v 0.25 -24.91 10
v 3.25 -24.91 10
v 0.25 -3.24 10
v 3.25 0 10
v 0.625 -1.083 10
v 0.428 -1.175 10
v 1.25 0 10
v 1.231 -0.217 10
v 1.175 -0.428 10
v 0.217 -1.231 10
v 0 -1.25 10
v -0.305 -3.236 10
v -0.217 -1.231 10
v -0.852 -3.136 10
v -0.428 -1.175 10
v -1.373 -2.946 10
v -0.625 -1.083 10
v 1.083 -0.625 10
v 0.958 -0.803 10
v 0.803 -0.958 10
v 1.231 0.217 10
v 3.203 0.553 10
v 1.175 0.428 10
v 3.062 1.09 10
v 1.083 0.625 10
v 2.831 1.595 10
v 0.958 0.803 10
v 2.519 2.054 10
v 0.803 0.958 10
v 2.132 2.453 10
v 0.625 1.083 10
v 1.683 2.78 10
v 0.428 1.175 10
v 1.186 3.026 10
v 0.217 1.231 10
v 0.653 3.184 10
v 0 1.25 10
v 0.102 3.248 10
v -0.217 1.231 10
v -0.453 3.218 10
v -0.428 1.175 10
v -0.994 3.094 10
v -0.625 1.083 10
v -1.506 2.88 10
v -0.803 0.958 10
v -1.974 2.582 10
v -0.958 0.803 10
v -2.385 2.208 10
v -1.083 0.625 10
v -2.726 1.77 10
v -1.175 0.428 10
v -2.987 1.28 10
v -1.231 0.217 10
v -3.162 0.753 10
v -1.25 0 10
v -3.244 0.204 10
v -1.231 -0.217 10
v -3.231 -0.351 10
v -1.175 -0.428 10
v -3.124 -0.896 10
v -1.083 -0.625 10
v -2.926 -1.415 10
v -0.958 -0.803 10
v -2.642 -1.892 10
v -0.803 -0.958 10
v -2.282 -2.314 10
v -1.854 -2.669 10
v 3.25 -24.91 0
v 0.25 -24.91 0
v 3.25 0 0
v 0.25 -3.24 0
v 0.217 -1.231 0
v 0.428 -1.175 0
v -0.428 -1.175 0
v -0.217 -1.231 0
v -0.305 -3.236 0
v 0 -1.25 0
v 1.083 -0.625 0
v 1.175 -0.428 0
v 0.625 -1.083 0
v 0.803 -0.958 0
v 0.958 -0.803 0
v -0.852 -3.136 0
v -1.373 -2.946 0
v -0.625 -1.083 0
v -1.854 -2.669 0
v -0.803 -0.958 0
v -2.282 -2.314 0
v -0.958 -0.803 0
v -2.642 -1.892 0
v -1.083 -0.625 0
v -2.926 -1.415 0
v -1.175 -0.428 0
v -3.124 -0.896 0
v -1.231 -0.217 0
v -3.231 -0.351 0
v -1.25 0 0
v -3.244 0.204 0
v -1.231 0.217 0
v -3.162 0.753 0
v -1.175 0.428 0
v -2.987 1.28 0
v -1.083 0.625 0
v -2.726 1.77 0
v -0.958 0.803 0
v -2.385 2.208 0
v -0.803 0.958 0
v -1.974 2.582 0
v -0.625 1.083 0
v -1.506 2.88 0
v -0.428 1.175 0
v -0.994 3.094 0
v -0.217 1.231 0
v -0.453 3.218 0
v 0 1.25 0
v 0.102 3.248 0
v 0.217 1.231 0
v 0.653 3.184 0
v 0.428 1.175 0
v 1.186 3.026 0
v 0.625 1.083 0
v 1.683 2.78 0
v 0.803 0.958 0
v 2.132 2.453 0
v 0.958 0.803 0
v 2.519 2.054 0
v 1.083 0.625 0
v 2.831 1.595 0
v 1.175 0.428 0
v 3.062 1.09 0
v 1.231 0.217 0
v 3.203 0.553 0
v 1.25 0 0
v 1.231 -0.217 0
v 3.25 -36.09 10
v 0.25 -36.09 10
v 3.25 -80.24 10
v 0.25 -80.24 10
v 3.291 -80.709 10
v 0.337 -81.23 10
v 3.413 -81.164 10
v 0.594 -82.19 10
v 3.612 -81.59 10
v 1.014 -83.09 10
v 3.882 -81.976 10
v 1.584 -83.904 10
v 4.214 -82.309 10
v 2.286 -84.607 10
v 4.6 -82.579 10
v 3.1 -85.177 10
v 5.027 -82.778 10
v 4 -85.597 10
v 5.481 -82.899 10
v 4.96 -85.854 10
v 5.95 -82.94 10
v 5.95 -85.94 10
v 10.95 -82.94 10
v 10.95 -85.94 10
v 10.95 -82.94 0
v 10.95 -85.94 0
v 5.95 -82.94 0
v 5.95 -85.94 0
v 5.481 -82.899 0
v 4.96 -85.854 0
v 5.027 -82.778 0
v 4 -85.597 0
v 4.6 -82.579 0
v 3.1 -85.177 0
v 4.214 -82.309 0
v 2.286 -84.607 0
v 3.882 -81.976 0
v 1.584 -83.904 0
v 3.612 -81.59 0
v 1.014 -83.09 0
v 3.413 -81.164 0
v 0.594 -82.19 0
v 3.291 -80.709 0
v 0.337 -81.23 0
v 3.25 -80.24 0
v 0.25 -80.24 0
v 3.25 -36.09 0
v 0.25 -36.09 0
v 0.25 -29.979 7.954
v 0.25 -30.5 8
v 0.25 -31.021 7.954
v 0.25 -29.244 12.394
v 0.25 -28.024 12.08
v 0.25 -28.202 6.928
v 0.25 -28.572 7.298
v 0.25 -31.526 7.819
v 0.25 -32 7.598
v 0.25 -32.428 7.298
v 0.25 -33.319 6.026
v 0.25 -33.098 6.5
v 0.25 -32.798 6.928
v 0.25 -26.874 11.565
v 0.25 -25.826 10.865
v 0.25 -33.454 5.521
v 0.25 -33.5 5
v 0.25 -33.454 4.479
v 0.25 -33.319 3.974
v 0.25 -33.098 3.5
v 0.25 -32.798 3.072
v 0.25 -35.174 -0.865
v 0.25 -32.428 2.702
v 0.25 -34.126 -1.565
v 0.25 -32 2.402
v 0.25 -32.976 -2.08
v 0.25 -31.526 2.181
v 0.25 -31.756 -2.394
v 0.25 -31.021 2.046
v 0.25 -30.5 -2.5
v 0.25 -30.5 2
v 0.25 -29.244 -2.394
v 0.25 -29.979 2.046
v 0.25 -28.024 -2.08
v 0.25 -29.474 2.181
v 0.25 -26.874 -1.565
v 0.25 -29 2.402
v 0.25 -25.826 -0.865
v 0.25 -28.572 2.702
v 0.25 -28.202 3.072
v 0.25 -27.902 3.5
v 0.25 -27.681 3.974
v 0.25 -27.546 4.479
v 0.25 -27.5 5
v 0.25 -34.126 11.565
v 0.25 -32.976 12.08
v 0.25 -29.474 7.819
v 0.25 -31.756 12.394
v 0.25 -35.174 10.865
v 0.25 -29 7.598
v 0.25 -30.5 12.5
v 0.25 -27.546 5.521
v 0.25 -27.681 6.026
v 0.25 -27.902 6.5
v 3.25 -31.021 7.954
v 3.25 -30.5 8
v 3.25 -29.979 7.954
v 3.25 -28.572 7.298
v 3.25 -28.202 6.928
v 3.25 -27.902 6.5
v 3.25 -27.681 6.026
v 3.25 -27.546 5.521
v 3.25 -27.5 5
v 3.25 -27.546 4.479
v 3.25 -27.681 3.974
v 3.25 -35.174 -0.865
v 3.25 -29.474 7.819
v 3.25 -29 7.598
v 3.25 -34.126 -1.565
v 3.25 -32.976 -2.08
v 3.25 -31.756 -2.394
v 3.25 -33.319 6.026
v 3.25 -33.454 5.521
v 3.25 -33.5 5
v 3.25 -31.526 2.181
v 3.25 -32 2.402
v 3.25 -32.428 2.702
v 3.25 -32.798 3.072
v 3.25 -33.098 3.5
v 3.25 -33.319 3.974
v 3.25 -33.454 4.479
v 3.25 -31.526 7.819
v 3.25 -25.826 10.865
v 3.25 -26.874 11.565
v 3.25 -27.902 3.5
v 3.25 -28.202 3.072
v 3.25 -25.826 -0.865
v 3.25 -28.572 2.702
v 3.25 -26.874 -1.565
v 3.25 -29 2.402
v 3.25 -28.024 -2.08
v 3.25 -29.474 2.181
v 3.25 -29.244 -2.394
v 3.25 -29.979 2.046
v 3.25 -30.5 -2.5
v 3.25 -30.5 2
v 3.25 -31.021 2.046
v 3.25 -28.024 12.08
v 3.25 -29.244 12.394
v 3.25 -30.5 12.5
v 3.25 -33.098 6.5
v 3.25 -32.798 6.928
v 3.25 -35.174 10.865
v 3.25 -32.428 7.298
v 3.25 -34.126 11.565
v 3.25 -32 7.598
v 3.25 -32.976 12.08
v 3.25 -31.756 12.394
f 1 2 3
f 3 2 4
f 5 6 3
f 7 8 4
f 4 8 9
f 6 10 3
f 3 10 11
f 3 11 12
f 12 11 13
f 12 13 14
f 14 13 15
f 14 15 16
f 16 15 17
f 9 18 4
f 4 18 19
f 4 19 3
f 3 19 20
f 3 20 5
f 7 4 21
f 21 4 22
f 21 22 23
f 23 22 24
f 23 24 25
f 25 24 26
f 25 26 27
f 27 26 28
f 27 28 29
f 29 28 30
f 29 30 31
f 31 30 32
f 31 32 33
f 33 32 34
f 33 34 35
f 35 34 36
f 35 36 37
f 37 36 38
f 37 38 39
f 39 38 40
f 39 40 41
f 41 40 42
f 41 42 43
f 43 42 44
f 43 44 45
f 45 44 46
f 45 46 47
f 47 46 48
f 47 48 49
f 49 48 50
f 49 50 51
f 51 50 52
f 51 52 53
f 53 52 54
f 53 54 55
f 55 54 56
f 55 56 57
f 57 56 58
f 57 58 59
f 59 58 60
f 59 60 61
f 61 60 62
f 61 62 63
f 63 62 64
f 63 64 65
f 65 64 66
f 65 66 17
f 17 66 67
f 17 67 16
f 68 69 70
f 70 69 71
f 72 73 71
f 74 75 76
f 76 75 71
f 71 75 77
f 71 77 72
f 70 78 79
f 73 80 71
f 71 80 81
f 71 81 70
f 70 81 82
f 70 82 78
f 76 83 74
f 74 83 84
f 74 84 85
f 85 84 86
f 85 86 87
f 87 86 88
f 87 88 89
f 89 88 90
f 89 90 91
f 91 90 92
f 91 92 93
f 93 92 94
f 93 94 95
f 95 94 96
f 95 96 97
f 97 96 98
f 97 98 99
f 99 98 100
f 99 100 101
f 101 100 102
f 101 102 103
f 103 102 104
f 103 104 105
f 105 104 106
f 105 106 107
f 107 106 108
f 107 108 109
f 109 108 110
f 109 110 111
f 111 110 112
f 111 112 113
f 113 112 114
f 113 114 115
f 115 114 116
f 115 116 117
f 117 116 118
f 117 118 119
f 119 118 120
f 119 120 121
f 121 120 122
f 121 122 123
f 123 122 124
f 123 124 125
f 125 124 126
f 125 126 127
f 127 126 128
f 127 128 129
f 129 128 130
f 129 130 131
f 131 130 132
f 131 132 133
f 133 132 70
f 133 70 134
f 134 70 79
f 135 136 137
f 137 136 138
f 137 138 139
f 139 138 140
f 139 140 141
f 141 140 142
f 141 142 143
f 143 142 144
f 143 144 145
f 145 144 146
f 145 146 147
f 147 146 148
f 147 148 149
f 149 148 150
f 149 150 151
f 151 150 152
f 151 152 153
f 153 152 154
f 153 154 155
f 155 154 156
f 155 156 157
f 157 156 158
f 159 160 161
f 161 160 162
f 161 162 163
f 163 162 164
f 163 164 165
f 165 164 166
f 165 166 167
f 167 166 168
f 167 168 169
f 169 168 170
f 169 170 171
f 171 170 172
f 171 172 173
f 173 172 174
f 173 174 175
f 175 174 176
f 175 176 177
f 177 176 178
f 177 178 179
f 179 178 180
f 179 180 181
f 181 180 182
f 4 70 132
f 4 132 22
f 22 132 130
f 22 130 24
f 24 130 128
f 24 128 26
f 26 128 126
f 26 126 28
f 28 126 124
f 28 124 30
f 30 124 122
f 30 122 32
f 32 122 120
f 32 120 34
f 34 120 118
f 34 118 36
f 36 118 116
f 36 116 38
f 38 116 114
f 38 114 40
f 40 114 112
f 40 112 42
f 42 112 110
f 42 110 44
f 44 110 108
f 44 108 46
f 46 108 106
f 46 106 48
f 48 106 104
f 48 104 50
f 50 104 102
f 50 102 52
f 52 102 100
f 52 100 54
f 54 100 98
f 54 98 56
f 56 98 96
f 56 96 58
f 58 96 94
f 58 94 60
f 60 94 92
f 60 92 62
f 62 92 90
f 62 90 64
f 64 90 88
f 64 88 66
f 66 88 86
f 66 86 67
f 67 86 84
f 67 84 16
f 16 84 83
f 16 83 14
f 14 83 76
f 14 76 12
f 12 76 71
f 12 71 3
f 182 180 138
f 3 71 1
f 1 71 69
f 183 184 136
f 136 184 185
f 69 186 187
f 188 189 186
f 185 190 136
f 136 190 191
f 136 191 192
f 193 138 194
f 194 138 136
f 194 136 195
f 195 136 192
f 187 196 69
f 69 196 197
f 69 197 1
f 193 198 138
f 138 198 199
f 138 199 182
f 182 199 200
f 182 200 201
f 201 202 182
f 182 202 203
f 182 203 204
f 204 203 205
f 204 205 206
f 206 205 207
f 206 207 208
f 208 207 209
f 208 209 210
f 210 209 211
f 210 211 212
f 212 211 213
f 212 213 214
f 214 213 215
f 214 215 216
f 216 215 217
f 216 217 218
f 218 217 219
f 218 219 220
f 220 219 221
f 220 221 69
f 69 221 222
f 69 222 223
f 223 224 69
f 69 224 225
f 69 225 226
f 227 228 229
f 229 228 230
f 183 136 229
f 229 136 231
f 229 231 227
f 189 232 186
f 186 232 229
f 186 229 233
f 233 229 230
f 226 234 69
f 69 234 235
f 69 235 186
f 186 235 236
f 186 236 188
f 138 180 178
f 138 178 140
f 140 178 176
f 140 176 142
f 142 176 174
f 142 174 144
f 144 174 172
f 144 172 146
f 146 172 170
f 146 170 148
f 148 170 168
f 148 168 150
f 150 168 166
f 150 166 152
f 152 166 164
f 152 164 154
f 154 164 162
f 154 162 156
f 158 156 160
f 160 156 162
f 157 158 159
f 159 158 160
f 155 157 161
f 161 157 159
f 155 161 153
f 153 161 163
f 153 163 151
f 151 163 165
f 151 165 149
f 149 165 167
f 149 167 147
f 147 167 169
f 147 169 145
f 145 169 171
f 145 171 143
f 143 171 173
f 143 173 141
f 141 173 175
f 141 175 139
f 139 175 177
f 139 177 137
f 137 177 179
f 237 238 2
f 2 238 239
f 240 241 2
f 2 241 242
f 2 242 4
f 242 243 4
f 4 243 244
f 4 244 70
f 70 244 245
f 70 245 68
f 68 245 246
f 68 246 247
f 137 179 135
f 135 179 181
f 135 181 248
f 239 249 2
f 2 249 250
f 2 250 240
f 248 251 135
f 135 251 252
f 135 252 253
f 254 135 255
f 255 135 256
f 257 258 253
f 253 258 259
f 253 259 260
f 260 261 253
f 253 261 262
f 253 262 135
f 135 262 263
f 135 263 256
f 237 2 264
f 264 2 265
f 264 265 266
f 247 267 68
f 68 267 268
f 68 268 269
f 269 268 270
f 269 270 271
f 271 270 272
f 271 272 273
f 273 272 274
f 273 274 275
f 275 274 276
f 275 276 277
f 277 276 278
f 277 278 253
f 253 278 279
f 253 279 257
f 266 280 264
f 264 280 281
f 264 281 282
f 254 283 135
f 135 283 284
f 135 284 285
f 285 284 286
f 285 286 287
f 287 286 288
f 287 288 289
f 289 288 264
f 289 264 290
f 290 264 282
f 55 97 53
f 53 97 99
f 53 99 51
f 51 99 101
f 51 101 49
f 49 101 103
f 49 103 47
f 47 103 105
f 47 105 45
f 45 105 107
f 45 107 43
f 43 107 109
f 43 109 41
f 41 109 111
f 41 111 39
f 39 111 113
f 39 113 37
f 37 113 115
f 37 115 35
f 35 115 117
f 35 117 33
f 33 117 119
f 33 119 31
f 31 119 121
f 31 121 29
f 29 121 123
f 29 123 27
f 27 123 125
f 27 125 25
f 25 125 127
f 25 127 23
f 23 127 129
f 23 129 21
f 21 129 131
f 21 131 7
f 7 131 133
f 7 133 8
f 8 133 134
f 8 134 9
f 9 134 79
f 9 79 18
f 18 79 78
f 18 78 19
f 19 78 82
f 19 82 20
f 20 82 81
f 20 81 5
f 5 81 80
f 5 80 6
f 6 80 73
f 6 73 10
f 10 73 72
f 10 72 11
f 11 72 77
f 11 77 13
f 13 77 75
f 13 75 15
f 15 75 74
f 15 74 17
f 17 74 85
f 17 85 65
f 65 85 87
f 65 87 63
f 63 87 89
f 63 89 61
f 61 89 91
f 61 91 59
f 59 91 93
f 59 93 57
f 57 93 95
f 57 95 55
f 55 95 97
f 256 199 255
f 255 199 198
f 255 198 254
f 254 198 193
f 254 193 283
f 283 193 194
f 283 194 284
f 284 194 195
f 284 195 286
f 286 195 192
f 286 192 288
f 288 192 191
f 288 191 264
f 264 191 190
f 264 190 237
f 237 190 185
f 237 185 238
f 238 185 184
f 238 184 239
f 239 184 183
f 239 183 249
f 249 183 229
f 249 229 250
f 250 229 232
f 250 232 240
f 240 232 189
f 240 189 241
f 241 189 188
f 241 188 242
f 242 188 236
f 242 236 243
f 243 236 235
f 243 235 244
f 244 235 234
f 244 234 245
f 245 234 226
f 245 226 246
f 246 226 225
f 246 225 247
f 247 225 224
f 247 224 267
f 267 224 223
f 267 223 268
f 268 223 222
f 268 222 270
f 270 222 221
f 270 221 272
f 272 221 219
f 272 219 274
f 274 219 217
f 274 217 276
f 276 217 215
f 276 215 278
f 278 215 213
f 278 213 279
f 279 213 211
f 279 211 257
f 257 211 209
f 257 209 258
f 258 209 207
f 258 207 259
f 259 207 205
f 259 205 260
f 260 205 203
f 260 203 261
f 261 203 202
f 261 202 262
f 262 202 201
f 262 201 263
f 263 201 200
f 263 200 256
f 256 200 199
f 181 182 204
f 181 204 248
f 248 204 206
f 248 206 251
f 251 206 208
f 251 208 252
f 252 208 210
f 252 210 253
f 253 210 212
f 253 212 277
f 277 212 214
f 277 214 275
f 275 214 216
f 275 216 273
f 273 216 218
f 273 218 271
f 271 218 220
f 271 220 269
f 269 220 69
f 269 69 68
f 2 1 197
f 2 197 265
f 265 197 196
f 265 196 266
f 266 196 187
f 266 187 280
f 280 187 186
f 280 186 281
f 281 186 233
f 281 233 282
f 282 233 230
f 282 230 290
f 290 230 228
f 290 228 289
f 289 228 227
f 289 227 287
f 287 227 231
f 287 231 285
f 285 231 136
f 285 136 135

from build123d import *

# Parameters (mm, degrees)
SKETCH1_R           = 1.25
BOSS_EXTRUDE1_DEPTH = 10
CUT_EXTRUDE1_REACH  = 89.179
SKETCH2_R           = 3
SKETCH3_R           = 7.5
SKETCH3_R_2         = 3
BOSS_EXTRUDE2_DEPTH = 3


with BuildPart() as part:
    # Sketch1 → Boss-Extrude1 (new body)
    with BuildSketch(Plane.XY):
        with BuildLine():
            Line((0.25, -3.240370349), (0.25, -80.240370349))
            ThreePointArc((0.25, -80.240370349), (1.919491347, -84.270879002), (5.95, -85.940370349))
            Line((5.95, -85.940370349), (10.95, -85.940370349))
            Line((10.95, -85.940370349), (10.95, -82.940370349))
            Line((10.95, -82.940370349), (5.95, -82.940370349))
            ThreePointArc((5.95, -82.940370349), (4.040811691, -82.149558658), (3.25, -80.240370349))
            Line((3.25, -80.240370349), (3.25, 0))
            ThreePointArc((3.25, 0), (-2.384848004, 2.207940217), (0.25, -3.240370349))
        make_face()
        Circle(SKETCH1_R, mode=Mode.SUBTRACT)
    extrude(amount=BOSS_EXTRUDE1_DEPTH)

    # Sketch2 → Cut-Extrude1 (cut, up to next)
    with BuildSketch(Plane.ZY.offset(-0.25), mode=Mode.PRIVATE) as cut_extrude1_sk1:
        with Locations(Location((5, -30.5, 0), (0, 0, 270))):
            Circle(SKETCH2_R)
    cut_extrude1_tool1 = extrude(cut_extrude1_sk1.sketch, amount=-CUT_EXTRUDE1_REACH, mode=Mode.PRIVATE) & part.part
    add(cut_extrude1_tool1.solids().sort_by_distance((0.25, -30.5, 5))[0], mode=Mode.SUBTRACT)

    # Sketch3 → Boss-Extrude2 (add)
    with BuildSketch(Plane.ZY.offset(-0.25)):
        with Locations((5, -30.5)):
            Circle(SKETCH3_R)
        with Locations(Location((5, -30.5, 0), (0, 0, 270))):
            Circle(SKETCH3_R_2, mode=Mode.SUBTRACT)
    extrude(amount=-BOSS_EXTRUDE2_DEPTH)


solid = part.part
